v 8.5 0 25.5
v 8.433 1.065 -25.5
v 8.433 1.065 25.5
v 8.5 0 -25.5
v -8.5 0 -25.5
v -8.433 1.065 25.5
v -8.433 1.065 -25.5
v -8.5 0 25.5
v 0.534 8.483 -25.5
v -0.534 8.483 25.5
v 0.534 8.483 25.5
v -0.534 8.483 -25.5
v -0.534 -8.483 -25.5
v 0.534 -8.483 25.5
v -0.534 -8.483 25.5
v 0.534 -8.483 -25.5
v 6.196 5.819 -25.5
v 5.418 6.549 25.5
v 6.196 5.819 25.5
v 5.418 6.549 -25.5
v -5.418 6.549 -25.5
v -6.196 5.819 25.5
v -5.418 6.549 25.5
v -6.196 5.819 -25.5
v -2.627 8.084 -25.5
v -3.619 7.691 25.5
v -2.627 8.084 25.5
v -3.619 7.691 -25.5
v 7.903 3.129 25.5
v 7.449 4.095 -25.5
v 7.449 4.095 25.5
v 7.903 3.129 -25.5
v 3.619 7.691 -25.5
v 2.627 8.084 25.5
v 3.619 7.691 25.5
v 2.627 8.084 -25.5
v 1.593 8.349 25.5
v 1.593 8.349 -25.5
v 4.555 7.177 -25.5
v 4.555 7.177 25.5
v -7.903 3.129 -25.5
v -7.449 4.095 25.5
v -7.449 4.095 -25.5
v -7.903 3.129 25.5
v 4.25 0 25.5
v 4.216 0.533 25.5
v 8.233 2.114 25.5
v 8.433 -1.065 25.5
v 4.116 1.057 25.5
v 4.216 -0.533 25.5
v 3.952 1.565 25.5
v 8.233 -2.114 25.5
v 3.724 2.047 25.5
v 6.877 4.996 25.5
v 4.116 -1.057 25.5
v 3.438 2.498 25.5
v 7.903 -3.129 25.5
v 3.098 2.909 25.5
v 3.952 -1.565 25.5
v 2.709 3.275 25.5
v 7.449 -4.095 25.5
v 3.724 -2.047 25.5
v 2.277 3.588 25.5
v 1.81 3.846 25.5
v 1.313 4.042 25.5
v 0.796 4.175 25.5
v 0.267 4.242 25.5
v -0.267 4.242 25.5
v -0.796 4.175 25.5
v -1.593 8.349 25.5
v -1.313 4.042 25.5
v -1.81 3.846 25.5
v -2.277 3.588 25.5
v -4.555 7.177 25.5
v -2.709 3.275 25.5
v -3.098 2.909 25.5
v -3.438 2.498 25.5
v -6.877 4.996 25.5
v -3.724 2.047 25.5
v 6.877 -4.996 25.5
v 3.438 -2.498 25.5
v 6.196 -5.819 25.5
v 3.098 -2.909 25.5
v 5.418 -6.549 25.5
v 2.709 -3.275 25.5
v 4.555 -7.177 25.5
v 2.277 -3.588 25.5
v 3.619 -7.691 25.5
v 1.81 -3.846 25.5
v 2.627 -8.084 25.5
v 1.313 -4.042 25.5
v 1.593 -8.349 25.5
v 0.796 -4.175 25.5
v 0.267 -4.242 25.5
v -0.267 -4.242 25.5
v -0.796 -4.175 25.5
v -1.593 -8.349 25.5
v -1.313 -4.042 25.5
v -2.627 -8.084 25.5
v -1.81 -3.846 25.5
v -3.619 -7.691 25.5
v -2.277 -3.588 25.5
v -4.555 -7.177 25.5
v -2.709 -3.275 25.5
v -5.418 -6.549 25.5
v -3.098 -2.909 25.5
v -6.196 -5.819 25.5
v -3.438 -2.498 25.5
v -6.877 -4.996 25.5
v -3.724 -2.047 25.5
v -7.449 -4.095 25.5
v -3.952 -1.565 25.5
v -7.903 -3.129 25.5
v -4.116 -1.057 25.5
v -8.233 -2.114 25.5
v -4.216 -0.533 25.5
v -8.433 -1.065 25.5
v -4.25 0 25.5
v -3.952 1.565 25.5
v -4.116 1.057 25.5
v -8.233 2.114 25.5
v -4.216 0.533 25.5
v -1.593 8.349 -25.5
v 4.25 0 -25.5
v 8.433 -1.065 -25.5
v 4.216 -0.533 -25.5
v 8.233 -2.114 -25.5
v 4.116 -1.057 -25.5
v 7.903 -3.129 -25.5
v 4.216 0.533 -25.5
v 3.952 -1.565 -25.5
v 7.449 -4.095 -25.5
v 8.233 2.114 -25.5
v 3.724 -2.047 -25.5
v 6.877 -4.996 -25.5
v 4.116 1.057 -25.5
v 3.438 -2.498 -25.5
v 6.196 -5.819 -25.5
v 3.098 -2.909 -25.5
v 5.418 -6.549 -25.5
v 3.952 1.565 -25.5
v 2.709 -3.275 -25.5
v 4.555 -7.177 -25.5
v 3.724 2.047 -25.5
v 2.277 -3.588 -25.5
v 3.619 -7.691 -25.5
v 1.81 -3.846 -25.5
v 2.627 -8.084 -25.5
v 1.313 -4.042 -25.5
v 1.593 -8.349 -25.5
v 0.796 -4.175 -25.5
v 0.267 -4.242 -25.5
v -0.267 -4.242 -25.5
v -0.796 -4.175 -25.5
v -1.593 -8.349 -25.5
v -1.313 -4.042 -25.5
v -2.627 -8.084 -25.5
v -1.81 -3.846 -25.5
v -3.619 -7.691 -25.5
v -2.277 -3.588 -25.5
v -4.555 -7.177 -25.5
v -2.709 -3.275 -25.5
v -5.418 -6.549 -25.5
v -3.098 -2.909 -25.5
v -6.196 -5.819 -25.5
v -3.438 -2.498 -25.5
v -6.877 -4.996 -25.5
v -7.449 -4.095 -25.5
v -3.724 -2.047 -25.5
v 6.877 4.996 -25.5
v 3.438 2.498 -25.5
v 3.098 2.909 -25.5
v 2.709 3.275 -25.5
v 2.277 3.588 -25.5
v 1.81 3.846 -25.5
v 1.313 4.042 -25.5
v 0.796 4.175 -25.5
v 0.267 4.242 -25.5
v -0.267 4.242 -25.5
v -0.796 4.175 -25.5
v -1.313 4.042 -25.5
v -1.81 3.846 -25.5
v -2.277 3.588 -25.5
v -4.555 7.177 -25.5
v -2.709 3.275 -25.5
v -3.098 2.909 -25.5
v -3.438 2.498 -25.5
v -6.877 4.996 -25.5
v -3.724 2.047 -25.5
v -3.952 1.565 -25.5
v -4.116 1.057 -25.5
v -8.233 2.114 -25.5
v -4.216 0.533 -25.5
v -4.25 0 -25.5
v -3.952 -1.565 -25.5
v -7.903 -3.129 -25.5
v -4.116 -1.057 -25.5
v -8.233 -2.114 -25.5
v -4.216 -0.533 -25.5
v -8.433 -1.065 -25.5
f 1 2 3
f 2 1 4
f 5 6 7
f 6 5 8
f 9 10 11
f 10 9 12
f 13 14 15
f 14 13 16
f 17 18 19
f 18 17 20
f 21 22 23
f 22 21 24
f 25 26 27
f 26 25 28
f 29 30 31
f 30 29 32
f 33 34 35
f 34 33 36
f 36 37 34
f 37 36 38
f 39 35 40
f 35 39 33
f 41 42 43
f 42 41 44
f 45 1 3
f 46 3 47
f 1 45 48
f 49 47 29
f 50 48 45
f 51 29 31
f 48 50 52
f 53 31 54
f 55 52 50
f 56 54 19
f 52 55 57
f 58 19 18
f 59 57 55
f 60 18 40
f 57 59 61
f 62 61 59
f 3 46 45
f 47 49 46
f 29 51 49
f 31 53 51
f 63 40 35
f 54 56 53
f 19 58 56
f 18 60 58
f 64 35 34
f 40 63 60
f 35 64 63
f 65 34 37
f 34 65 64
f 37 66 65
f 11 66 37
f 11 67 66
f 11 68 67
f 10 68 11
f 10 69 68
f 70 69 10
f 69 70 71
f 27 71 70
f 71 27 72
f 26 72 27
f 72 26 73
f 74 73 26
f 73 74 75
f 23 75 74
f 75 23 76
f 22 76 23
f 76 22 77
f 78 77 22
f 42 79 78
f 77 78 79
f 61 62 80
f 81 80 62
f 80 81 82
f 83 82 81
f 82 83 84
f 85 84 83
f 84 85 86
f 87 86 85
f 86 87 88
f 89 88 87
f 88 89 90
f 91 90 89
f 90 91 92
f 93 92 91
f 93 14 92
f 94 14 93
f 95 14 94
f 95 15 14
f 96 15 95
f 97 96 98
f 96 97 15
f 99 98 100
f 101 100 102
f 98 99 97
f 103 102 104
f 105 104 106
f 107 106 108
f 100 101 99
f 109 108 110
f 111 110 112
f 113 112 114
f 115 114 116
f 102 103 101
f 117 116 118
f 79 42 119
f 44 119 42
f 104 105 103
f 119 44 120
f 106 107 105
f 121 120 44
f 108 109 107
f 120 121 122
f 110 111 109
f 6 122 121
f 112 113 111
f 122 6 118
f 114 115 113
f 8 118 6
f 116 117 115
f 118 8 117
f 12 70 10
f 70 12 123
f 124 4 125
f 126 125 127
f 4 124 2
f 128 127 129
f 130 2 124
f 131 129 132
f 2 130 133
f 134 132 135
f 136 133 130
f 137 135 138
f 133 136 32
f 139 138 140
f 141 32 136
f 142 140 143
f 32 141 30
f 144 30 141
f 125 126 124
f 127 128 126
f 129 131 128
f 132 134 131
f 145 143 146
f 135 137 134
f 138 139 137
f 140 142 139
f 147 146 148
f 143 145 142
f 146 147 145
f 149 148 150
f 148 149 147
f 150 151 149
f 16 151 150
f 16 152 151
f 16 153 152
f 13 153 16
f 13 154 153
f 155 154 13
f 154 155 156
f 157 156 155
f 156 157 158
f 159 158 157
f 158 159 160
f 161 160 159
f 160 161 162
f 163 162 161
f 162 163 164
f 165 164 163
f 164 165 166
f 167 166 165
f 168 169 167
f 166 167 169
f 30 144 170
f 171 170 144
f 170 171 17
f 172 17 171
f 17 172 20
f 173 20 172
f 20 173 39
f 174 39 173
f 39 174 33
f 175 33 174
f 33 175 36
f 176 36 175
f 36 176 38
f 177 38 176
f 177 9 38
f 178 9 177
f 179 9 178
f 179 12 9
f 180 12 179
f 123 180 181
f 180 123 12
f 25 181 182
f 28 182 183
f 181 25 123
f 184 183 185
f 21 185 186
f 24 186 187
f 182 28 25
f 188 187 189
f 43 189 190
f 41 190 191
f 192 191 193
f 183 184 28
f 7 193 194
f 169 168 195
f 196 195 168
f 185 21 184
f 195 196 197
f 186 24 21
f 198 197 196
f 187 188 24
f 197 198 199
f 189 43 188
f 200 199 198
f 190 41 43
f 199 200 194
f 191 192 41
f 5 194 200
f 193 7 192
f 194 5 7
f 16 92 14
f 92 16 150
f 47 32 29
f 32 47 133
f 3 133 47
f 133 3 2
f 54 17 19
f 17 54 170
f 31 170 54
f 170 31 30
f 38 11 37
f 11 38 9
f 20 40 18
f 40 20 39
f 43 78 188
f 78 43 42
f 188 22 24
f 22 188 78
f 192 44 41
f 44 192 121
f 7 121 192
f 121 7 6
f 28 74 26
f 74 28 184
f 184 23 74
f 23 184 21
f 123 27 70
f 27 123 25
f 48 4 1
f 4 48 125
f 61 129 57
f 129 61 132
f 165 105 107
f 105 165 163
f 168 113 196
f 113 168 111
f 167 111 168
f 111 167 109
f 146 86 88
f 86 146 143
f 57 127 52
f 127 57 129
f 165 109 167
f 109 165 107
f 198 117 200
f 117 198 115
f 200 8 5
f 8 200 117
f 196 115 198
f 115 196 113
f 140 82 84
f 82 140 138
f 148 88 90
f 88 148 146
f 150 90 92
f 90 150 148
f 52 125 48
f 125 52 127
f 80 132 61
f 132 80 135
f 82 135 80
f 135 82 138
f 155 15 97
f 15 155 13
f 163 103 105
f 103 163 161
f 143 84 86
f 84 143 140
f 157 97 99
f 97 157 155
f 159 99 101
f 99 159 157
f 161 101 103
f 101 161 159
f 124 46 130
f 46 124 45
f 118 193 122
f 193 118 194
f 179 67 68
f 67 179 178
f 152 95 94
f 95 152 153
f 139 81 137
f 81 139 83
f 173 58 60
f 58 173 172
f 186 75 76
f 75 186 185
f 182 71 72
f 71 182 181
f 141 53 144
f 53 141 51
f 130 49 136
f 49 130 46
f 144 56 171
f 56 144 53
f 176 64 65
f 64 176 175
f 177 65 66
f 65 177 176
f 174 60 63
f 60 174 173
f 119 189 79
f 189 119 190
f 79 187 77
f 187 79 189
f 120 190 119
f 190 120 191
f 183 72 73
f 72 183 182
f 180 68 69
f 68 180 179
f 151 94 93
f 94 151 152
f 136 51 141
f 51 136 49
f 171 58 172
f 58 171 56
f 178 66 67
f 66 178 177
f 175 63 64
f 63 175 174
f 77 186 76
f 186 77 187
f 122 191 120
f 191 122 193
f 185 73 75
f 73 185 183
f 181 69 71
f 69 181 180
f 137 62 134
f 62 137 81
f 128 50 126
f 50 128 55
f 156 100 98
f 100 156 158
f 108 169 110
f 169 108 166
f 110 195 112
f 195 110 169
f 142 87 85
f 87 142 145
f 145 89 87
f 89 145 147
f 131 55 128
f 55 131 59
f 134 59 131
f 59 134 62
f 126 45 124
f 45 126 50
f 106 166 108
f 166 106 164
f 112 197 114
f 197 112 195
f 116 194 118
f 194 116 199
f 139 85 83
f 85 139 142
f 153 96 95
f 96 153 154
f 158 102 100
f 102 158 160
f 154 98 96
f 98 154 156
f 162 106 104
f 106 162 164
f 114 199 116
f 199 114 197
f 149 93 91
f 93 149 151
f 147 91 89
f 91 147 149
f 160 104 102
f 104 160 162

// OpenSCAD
$fn = 50;


difference() {
	union() {
		translate(v = [0, 0, -25.5000000000]) {
			cylinder(h = 51, r = 8.5000000000);
		}
	}
	union() {
		translate(v = [0, 0, -100.0000000000]) {
			cylinder(h = 200, r = 4.2500000000);
		}
	}
}
